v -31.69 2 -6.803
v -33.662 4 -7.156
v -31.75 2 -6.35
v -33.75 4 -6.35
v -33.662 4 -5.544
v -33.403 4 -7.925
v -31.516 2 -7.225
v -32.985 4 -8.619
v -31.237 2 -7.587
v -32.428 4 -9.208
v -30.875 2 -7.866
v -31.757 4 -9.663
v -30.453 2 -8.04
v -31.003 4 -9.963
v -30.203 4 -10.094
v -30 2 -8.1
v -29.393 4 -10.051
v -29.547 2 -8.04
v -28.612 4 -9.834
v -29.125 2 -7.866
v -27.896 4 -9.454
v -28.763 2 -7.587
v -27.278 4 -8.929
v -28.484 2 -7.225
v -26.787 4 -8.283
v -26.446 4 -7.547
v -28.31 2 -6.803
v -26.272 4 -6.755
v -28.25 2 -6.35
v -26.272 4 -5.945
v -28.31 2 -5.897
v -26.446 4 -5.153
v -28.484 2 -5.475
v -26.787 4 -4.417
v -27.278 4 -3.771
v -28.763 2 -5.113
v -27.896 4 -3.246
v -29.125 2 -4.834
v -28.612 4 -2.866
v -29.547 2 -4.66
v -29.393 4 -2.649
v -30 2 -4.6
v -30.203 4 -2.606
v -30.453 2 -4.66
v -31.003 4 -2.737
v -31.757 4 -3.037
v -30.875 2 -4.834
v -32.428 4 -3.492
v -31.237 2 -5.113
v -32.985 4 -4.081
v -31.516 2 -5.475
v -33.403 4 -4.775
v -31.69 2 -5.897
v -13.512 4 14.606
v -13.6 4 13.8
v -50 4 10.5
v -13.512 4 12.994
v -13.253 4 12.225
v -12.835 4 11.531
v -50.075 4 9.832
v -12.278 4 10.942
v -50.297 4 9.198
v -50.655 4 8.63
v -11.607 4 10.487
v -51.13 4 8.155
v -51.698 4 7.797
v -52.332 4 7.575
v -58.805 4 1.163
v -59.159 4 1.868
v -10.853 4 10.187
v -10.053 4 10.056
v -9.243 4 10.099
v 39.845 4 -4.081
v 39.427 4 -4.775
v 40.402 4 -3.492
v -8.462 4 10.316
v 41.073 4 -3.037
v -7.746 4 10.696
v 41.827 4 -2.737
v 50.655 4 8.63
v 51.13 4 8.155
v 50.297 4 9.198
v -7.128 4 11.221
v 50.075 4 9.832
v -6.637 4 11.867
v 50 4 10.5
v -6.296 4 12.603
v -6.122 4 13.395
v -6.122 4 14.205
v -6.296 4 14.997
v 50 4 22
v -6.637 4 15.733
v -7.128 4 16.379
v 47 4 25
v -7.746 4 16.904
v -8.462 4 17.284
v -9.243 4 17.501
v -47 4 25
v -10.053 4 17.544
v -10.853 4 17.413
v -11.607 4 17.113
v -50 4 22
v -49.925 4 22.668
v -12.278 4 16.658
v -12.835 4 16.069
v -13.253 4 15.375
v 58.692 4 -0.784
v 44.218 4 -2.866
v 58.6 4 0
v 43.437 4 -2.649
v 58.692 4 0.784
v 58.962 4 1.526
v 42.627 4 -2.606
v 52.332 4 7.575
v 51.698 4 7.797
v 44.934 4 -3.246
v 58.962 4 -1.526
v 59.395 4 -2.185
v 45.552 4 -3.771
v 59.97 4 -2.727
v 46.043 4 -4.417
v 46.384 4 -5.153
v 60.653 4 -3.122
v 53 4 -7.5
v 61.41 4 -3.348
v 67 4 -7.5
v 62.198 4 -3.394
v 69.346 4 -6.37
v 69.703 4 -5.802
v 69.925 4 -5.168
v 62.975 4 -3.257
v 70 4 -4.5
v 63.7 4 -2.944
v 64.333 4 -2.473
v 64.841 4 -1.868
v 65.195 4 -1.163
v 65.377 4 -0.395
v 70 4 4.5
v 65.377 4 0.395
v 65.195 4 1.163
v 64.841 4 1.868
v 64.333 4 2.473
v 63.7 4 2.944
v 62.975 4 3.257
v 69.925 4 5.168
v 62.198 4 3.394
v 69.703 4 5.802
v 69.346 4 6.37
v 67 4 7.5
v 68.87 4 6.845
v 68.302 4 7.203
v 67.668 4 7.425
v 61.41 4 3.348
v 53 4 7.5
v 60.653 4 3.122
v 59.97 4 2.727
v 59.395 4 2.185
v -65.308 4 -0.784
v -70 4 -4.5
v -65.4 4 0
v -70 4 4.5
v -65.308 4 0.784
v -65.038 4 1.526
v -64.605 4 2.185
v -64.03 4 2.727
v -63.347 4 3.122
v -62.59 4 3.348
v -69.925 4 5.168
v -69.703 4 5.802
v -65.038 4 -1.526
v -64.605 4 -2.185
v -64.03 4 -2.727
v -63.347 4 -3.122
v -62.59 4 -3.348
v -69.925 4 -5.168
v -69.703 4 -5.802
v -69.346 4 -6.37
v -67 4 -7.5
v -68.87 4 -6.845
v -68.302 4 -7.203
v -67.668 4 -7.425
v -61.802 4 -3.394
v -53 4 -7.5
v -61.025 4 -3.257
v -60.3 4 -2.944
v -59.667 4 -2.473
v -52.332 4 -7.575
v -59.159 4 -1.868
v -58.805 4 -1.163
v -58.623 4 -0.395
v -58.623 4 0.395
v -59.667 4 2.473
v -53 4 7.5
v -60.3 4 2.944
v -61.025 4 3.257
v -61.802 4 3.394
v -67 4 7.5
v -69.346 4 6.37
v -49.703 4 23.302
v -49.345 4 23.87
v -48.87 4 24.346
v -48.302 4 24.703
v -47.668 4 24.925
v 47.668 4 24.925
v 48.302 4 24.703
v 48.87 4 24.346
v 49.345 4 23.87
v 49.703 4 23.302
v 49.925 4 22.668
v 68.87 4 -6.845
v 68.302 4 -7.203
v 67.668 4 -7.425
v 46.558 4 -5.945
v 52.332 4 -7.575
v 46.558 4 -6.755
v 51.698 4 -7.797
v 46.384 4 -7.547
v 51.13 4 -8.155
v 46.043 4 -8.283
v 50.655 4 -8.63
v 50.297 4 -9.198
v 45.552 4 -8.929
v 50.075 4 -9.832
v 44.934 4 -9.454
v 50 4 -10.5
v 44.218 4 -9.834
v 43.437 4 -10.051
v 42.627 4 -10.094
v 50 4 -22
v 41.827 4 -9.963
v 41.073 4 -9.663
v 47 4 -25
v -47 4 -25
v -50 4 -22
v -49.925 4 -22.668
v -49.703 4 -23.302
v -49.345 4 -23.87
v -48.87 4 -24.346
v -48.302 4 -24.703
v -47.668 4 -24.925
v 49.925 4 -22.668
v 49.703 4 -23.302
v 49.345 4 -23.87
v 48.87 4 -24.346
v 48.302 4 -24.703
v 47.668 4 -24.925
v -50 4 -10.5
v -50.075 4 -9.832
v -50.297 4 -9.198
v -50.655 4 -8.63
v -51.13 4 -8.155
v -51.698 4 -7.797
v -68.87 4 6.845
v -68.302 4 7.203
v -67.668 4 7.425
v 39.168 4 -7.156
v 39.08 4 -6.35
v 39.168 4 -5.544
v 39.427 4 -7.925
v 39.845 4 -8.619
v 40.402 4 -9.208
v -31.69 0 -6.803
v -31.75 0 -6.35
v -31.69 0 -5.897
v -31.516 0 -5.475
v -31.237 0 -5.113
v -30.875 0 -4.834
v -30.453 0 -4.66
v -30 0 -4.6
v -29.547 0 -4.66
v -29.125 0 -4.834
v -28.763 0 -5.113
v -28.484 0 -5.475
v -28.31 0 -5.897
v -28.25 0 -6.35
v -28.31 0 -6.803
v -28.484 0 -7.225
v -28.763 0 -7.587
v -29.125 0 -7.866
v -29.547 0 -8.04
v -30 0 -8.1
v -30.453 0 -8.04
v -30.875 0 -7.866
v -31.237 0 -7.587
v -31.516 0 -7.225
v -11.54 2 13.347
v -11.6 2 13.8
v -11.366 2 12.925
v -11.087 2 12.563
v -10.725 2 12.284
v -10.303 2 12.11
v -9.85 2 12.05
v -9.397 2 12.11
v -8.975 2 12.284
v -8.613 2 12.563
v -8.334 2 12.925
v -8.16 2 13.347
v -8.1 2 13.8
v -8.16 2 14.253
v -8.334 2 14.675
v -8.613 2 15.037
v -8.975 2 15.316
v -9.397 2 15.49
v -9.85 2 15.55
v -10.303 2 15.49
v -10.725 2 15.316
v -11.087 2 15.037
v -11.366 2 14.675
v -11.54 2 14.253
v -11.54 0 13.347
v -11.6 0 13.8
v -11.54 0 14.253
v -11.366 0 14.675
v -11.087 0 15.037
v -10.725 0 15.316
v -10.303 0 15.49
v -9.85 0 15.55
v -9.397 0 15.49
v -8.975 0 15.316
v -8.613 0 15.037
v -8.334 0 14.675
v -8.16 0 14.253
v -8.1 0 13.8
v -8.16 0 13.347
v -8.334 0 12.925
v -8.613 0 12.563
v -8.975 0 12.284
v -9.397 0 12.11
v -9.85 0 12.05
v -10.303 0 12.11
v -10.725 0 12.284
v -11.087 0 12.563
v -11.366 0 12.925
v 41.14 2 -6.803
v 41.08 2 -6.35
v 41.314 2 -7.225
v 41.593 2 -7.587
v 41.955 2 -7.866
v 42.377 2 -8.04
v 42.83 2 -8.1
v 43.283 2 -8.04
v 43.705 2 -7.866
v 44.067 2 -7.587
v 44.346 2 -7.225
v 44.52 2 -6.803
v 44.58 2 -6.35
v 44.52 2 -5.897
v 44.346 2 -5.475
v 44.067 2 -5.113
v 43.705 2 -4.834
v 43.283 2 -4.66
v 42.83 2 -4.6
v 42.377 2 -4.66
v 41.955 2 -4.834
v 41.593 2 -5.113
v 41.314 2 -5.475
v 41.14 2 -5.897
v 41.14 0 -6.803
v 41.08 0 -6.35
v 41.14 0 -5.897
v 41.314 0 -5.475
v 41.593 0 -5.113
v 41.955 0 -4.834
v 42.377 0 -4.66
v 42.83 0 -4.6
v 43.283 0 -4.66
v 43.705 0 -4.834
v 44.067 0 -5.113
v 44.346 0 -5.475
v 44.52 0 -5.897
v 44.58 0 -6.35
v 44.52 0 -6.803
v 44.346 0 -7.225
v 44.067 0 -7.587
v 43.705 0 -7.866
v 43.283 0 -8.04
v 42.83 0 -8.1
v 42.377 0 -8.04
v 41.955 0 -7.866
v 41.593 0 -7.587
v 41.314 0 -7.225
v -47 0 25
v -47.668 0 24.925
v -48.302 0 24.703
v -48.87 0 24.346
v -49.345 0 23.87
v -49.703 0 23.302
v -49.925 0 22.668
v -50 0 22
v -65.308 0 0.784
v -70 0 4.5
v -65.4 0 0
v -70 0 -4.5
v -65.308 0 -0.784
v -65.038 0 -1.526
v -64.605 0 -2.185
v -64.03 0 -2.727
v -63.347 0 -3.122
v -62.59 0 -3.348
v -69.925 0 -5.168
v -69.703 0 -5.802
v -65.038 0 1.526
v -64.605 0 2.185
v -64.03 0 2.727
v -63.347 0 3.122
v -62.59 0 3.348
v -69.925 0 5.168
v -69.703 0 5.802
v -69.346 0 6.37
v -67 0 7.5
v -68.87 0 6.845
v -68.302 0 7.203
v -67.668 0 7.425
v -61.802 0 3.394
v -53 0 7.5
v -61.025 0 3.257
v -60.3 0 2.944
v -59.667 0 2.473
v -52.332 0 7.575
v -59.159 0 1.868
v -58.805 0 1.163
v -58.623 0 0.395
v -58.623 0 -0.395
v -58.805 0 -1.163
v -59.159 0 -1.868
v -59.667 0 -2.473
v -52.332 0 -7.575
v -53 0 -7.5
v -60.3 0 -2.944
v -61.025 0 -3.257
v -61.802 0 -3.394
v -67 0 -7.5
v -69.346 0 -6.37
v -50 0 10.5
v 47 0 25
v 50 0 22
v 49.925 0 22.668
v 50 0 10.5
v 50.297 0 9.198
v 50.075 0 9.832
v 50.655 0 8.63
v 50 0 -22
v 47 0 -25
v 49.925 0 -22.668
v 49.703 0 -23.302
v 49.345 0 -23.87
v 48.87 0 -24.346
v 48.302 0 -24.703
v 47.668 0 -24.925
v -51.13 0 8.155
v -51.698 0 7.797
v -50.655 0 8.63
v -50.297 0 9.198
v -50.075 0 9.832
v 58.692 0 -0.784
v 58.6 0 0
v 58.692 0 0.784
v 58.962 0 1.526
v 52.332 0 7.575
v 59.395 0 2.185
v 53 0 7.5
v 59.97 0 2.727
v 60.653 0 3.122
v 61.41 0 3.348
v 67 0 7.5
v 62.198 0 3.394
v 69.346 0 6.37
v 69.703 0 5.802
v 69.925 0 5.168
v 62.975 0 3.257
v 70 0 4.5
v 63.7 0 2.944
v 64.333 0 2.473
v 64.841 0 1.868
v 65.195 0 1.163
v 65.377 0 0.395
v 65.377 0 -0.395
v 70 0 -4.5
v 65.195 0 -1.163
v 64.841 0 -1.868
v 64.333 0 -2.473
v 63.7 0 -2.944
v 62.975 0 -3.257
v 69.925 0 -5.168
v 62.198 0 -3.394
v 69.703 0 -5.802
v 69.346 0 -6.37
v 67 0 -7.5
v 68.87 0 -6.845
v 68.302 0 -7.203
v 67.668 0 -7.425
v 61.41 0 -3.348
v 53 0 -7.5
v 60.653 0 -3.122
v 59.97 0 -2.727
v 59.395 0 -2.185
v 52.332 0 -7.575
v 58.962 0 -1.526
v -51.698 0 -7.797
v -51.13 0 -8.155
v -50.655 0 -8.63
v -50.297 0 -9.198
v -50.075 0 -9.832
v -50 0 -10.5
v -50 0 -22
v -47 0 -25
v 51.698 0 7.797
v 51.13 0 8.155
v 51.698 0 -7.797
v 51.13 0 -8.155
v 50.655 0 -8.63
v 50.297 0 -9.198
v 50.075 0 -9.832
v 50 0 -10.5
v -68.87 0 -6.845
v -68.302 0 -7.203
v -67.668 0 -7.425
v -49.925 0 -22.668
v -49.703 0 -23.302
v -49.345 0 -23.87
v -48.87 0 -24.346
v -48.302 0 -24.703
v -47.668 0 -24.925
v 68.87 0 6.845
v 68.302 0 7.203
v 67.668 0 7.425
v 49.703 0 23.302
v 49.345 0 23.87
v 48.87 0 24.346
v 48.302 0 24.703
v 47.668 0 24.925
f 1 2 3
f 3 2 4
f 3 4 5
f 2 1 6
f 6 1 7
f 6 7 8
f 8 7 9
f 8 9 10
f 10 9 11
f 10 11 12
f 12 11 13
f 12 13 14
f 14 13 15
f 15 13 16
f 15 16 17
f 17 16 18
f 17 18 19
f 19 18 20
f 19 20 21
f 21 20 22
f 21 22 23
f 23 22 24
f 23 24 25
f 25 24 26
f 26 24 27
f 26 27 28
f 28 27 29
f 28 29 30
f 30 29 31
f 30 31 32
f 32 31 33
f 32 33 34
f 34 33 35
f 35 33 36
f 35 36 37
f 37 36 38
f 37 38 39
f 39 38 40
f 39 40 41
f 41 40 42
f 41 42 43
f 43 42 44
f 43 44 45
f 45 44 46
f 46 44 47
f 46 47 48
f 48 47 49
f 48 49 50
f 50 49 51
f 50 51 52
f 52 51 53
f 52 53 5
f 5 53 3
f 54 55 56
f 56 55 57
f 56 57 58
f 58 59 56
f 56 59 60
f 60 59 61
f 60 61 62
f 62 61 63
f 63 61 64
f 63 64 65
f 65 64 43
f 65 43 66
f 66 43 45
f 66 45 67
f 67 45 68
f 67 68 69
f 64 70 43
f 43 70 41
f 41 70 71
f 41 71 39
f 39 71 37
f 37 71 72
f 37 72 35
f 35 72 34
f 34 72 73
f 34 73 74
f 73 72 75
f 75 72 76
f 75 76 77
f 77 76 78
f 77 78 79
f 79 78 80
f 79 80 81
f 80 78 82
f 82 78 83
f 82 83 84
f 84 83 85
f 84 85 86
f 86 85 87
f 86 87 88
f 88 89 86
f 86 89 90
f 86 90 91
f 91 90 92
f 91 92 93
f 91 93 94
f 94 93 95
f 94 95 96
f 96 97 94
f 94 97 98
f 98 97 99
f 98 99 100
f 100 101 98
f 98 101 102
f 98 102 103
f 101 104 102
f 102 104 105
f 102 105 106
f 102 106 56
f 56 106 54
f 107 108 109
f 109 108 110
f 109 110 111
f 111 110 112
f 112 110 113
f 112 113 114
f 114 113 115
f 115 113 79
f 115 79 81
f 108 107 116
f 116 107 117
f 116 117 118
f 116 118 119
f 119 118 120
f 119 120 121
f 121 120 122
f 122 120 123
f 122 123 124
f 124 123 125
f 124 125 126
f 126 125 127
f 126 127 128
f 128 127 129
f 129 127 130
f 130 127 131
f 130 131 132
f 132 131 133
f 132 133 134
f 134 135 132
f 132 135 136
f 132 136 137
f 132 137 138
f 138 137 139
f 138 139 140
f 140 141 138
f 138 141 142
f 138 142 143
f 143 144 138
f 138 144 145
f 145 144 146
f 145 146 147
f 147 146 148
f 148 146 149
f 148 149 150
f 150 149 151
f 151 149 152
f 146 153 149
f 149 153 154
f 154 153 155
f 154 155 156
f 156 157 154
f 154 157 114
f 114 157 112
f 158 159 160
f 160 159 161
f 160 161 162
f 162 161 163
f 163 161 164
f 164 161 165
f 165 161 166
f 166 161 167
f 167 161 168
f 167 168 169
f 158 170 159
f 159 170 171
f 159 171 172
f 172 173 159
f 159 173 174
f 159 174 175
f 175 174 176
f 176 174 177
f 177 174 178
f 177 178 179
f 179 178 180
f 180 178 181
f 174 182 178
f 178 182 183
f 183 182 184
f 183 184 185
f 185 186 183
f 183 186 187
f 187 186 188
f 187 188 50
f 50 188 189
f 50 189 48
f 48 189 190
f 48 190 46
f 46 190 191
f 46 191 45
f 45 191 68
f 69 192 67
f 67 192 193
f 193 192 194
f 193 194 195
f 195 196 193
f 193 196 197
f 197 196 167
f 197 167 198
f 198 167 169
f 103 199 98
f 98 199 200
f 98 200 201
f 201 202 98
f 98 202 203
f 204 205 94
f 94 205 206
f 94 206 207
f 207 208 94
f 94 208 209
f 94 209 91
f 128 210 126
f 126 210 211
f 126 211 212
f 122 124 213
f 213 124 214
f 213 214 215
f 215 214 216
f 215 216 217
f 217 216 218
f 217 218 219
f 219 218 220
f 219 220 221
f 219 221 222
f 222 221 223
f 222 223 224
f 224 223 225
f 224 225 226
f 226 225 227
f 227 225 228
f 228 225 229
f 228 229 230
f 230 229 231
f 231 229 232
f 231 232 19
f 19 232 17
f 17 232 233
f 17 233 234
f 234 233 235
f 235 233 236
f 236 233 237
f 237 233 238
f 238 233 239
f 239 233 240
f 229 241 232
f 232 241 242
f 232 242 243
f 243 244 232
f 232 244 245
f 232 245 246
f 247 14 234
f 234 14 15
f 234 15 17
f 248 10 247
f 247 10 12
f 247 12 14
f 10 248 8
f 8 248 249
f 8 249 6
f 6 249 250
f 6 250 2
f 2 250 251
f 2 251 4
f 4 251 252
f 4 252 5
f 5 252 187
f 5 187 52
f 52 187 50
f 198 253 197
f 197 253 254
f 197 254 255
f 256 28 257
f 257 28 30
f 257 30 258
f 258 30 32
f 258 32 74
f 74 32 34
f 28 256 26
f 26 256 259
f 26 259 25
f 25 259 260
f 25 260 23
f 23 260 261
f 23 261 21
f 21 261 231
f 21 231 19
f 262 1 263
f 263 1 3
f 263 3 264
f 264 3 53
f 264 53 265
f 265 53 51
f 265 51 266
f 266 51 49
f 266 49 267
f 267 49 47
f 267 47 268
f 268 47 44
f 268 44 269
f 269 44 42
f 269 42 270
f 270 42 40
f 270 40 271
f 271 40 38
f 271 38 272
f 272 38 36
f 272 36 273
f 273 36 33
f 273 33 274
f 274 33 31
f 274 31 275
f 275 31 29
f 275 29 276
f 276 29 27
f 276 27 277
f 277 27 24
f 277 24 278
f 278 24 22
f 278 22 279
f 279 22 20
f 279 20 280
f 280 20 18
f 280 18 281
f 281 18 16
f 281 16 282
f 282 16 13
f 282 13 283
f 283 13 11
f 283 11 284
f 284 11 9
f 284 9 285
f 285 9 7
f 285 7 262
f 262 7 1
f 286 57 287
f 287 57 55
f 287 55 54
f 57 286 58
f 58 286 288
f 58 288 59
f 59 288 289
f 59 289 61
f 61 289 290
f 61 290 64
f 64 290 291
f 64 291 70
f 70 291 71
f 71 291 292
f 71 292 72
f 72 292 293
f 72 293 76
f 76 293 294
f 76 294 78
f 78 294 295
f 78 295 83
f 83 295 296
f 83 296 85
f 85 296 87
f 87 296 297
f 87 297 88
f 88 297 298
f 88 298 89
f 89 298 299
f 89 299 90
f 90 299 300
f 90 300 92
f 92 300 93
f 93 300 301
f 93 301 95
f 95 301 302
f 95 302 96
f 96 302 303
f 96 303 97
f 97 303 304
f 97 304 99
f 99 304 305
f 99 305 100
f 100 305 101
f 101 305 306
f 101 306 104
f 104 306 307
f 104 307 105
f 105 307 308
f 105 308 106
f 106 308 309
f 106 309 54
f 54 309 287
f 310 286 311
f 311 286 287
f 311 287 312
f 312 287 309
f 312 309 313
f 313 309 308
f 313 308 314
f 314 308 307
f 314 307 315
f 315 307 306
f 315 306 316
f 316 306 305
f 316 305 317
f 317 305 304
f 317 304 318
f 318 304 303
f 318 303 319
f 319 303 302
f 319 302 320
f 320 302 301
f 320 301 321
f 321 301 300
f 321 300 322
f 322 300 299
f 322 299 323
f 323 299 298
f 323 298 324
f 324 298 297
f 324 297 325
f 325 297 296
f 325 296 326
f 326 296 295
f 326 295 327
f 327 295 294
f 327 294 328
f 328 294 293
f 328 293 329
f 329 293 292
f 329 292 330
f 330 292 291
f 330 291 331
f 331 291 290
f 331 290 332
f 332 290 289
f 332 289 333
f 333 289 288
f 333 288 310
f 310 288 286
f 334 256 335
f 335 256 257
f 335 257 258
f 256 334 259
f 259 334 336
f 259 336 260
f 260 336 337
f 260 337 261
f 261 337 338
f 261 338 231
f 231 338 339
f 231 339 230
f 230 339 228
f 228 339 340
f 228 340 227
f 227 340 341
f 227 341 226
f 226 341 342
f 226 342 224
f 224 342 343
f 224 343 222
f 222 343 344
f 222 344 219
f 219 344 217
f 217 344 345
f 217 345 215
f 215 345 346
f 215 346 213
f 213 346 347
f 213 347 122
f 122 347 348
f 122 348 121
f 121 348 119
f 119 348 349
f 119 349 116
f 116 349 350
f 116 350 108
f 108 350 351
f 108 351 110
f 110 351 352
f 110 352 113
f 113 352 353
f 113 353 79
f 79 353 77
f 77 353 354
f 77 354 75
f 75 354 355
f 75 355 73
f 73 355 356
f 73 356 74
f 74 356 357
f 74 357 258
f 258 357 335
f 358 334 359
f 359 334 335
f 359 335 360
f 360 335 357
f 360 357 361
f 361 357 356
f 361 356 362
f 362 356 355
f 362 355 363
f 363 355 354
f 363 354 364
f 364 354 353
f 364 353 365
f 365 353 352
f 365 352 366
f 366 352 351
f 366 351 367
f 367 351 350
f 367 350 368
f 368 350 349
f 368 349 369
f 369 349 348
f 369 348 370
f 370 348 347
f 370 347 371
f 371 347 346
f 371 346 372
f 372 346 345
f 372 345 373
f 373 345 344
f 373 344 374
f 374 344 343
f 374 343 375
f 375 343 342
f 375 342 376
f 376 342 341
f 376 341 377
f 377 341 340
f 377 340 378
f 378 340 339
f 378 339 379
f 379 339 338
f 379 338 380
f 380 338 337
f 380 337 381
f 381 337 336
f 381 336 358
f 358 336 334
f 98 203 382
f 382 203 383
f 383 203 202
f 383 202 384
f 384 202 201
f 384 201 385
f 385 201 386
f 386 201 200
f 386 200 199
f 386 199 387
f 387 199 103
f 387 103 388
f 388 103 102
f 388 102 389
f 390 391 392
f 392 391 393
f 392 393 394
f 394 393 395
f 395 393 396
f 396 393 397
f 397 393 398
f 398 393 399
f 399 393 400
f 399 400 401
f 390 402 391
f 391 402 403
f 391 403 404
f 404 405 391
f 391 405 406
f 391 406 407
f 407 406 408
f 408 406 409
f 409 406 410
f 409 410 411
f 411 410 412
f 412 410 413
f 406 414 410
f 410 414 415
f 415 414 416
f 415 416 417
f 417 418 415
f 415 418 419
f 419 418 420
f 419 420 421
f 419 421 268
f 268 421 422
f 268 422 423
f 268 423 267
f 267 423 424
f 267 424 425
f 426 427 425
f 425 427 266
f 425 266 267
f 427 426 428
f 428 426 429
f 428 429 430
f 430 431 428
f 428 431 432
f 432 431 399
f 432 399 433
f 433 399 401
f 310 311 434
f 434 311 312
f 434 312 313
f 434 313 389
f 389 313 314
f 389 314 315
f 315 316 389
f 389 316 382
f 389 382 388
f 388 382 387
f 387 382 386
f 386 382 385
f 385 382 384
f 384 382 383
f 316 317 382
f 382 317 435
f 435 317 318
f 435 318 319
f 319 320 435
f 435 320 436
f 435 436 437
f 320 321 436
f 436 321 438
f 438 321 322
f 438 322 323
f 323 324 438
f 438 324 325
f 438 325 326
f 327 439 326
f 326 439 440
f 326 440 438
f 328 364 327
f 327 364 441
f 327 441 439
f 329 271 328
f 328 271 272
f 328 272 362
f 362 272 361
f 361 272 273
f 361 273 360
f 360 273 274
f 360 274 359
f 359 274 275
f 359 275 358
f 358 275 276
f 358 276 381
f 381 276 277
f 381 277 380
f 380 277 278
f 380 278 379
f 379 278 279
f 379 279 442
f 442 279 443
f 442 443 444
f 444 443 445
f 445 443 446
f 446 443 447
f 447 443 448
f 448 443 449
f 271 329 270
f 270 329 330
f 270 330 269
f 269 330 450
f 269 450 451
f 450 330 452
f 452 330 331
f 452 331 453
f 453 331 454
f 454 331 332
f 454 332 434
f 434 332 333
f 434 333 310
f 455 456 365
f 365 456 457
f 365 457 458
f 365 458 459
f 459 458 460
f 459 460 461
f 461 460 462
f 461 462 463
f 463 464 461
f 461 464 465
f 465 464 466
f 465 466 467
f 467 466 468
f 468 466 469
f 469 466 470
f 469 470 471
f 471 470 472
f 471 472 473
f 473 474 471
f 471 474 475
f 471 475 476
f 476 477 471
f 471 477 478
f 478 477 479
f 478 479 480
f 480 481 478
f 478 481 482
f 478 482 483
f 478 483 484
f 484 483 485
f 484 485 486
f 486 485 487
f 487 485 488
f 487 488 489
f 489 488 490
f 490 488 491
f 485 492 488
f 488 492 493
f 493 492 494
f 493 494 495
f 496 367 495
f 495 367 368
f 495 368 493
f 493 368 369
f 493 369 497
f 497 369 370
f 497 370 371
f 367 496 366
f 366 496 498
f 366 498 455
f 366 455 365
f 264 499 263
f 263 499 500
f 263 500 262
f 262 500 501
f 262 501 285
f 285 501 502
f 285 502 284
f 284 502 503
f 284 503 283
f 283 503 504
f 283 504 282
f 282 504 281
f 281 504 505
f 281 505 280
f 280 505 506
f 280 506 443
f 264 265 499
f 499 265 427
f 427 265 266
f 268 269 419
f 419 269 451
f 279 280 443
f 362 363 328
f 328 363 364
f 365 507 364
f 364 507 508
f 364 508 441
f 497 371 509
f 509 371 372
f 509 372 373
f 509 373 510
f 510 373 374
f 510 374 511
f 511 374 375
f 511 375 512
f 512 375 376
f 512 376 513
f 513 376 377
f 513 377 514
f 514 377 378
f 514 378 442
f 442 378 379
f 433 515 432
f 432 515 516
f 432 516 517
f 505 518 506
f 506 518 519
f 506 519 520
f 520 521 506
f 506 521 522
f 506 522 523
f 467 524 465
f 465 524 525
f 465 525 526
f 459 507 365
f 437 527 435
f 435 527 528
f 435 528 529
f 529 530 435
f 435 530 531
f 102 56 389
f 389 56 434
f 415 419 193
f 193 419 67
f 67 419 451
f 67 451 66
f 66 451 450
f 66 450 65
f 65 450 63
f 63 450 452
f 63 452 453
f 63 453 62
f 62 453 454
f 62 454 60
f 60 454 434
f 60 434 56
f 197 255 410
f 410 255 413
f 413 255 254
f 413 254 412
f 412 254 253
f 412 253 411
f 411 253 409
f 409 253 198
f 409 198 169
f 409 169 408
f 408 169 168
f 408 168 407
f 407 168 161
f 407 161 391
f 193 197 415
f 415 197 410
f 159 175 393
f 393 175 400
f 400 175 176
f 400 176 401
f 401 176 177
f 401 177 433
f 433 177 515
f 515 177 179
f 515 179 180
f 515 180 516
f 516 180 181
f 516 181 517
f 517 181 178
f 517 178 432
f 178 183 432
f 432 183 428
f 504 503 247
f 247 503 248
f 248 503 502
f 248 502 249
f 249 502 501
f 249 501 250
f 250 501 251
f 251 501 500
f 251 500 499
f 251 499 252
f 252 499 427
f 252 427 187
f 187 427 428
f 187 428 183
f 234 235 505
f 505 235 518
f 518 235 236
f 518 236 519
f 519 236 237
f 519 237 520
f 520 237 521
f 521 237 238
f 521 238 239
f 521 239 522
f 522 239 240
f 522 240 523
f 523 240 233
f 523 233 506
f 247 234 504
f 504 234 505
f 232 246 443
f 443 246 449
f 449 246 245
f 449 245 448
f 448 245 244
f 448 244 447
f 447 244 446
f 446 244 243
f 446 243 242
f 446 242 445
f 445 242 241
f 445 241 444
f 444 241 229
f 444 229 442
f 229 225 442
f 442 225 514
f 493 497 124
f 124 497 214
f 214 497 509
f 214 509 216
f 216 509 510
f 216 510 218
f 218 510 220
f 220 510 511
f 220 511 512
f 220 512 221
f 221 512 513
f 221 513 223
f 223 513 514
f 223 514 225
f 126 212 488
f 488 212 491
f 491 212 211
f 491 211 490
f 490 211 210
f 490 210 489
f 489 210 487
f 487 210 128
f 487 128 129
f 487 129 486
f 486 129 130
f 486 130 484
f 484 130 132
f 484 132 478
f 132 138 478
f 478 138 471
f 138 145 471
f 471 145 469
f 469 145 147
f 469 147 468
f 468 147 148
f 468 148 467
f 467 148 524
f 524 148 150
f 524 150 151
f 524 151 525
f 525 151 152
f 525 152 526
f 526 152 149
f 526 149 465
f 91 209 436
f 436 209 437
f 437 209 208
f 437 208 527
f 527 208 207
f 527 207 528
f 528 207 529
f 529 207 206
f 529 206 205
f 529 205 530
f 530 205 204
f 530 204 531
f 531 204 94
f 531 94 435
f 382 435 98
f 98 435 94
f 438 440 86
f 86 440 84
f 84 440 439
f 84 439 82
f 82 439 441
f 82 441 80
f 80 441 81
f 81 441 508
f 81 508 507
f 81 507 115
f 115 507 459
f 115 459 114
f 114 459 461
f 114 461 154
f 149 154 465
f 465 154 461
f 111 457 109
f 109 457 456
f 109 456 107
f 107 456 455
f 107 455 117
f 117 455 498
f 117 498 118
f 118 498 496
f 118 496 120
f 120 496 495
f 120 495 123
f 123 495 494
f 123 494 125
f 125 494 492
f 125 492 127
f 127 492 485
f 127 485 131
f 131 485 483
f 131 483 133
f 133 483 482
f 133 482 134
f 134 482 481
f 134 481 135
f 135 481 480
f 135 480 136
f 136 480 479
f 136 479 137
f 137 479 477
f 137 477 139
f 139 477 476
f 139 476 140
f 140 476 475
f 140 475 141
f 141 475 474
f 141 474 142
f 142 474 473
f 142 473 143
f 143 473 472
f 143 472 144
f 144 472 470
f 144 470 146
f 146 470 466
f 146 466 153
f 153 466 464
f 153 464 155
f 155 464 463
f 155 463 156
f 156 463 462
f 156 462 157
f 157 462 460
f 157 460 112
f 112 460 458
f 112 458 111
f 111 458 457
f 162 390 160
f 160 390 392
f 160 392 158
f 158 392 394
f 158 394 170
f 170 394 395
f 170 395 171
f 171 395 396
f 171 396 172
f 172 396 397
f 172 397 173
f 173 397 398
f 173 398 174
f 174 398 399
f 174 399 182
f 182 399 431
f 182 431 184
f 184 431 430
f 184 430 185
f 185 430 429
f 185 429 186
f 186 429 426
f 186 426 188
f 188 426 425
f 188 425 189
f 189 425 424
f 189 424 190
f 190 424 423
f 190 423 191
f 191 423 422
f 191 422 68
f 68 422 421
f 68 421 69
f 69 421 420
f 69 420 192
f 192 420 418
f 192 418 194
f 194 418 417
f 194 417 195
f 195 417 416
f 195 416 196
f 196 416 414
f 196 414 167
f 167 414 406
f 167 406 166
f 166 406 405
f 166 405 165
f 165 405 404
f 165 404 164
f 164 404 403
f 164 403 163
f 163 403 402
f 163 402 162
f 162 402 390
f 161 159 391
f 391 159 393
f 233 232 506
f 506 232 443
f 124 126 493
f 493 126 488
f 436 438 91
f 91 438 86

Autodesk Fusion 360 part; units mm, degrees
sketch "Sketch1" plane through (0, 0, 0) normal (0, 1, 0) x (1, 0, 0)
  line L0 (50, 25) -> (-50, 25)
  line L1 (-50, 25) -> (-50, -25)
  line L2 (-50, -25) -> (50, -25)
  line L3 (50, -25) -> (50, 25)
  line L4 (50, 25) -> (-50, -25) construction
  line L5 (-50, 25) -> (50, -25) construction
  line L6 (0, 0) -> (0, 15) construction
  line L7 (0, 0) -> (-17.4892, 0) construction
  circle A0 centre (42.83, 6.35) radius 1.75
  circle A1 centre (-30, 6.35) radius 1.75
  circle A2 centre (-9.85, -13.8) radius 1.75
  line L8 (70, 7.5) -> (50, 7.5)
  line L9 (50, 7.5) -> (50, -7.5)
  line L10 (50, -7.5) -> (70, -7.5)
  line L11 (70, -7.5) -> (70, 7.5)
  line L12 (70, 7.5) -> (50, -7.5) construction
  line L13 (50, 7.5) -> (70, -7.5) construction
  line L14 (-70, 7.5) -> (-50, 7.5)
  line L15 (-70, -7.5) -> (-70, 7.5)
  line L16 (-50, -7.5) -> (-70, -7.5)
  circle A3 centre (62, 0) radius 3.4
  circle A4 centre (-62, 0) radius 3.4
  line L17 (42.83, 6.35) -> (-30, 6.35) construction
  point P0 (60, 0)
  dimension "d1" = 3.5
  dimension "d2" = 3.5
  dimension "d3" = 3.5
  dimension "d4" = 6.8
  dimension "d5" = 15
  dimension "d6" = 20
  dimension "d7" = 12
  dimension "d8" = 100
  dimension "d9" = 50
  dimension "d10" = 72.83
  dimension "d11" = 20.15
  dimension "d12" = 20.15
  dimension "d13" = 20
  dimension "d14" = 18.65
extrude "Extrude1" add sketch "Sketch1" along normal blind 4
fillet "Fillet1" radius 3 12 edges at (50, 2, 7.5) (50, 2, 25) (70, 2, 7.5) (70, 2, -7.5) (50, 2, -7.5) (50, 2, -25) (-50, 2, -25) (-50, 2, -7.5) (-70, 2, -7.5) (-70, 2, 7.5) (-50, 2, 7.5) (-50, 2, 25)
chamfer "Chamfer1" distance 2 angle 45 3 edges at (41.1984, 4, -6.9828) (-11.4816, 4, 13.1672) (-31.6316, 4, -6.9828)
